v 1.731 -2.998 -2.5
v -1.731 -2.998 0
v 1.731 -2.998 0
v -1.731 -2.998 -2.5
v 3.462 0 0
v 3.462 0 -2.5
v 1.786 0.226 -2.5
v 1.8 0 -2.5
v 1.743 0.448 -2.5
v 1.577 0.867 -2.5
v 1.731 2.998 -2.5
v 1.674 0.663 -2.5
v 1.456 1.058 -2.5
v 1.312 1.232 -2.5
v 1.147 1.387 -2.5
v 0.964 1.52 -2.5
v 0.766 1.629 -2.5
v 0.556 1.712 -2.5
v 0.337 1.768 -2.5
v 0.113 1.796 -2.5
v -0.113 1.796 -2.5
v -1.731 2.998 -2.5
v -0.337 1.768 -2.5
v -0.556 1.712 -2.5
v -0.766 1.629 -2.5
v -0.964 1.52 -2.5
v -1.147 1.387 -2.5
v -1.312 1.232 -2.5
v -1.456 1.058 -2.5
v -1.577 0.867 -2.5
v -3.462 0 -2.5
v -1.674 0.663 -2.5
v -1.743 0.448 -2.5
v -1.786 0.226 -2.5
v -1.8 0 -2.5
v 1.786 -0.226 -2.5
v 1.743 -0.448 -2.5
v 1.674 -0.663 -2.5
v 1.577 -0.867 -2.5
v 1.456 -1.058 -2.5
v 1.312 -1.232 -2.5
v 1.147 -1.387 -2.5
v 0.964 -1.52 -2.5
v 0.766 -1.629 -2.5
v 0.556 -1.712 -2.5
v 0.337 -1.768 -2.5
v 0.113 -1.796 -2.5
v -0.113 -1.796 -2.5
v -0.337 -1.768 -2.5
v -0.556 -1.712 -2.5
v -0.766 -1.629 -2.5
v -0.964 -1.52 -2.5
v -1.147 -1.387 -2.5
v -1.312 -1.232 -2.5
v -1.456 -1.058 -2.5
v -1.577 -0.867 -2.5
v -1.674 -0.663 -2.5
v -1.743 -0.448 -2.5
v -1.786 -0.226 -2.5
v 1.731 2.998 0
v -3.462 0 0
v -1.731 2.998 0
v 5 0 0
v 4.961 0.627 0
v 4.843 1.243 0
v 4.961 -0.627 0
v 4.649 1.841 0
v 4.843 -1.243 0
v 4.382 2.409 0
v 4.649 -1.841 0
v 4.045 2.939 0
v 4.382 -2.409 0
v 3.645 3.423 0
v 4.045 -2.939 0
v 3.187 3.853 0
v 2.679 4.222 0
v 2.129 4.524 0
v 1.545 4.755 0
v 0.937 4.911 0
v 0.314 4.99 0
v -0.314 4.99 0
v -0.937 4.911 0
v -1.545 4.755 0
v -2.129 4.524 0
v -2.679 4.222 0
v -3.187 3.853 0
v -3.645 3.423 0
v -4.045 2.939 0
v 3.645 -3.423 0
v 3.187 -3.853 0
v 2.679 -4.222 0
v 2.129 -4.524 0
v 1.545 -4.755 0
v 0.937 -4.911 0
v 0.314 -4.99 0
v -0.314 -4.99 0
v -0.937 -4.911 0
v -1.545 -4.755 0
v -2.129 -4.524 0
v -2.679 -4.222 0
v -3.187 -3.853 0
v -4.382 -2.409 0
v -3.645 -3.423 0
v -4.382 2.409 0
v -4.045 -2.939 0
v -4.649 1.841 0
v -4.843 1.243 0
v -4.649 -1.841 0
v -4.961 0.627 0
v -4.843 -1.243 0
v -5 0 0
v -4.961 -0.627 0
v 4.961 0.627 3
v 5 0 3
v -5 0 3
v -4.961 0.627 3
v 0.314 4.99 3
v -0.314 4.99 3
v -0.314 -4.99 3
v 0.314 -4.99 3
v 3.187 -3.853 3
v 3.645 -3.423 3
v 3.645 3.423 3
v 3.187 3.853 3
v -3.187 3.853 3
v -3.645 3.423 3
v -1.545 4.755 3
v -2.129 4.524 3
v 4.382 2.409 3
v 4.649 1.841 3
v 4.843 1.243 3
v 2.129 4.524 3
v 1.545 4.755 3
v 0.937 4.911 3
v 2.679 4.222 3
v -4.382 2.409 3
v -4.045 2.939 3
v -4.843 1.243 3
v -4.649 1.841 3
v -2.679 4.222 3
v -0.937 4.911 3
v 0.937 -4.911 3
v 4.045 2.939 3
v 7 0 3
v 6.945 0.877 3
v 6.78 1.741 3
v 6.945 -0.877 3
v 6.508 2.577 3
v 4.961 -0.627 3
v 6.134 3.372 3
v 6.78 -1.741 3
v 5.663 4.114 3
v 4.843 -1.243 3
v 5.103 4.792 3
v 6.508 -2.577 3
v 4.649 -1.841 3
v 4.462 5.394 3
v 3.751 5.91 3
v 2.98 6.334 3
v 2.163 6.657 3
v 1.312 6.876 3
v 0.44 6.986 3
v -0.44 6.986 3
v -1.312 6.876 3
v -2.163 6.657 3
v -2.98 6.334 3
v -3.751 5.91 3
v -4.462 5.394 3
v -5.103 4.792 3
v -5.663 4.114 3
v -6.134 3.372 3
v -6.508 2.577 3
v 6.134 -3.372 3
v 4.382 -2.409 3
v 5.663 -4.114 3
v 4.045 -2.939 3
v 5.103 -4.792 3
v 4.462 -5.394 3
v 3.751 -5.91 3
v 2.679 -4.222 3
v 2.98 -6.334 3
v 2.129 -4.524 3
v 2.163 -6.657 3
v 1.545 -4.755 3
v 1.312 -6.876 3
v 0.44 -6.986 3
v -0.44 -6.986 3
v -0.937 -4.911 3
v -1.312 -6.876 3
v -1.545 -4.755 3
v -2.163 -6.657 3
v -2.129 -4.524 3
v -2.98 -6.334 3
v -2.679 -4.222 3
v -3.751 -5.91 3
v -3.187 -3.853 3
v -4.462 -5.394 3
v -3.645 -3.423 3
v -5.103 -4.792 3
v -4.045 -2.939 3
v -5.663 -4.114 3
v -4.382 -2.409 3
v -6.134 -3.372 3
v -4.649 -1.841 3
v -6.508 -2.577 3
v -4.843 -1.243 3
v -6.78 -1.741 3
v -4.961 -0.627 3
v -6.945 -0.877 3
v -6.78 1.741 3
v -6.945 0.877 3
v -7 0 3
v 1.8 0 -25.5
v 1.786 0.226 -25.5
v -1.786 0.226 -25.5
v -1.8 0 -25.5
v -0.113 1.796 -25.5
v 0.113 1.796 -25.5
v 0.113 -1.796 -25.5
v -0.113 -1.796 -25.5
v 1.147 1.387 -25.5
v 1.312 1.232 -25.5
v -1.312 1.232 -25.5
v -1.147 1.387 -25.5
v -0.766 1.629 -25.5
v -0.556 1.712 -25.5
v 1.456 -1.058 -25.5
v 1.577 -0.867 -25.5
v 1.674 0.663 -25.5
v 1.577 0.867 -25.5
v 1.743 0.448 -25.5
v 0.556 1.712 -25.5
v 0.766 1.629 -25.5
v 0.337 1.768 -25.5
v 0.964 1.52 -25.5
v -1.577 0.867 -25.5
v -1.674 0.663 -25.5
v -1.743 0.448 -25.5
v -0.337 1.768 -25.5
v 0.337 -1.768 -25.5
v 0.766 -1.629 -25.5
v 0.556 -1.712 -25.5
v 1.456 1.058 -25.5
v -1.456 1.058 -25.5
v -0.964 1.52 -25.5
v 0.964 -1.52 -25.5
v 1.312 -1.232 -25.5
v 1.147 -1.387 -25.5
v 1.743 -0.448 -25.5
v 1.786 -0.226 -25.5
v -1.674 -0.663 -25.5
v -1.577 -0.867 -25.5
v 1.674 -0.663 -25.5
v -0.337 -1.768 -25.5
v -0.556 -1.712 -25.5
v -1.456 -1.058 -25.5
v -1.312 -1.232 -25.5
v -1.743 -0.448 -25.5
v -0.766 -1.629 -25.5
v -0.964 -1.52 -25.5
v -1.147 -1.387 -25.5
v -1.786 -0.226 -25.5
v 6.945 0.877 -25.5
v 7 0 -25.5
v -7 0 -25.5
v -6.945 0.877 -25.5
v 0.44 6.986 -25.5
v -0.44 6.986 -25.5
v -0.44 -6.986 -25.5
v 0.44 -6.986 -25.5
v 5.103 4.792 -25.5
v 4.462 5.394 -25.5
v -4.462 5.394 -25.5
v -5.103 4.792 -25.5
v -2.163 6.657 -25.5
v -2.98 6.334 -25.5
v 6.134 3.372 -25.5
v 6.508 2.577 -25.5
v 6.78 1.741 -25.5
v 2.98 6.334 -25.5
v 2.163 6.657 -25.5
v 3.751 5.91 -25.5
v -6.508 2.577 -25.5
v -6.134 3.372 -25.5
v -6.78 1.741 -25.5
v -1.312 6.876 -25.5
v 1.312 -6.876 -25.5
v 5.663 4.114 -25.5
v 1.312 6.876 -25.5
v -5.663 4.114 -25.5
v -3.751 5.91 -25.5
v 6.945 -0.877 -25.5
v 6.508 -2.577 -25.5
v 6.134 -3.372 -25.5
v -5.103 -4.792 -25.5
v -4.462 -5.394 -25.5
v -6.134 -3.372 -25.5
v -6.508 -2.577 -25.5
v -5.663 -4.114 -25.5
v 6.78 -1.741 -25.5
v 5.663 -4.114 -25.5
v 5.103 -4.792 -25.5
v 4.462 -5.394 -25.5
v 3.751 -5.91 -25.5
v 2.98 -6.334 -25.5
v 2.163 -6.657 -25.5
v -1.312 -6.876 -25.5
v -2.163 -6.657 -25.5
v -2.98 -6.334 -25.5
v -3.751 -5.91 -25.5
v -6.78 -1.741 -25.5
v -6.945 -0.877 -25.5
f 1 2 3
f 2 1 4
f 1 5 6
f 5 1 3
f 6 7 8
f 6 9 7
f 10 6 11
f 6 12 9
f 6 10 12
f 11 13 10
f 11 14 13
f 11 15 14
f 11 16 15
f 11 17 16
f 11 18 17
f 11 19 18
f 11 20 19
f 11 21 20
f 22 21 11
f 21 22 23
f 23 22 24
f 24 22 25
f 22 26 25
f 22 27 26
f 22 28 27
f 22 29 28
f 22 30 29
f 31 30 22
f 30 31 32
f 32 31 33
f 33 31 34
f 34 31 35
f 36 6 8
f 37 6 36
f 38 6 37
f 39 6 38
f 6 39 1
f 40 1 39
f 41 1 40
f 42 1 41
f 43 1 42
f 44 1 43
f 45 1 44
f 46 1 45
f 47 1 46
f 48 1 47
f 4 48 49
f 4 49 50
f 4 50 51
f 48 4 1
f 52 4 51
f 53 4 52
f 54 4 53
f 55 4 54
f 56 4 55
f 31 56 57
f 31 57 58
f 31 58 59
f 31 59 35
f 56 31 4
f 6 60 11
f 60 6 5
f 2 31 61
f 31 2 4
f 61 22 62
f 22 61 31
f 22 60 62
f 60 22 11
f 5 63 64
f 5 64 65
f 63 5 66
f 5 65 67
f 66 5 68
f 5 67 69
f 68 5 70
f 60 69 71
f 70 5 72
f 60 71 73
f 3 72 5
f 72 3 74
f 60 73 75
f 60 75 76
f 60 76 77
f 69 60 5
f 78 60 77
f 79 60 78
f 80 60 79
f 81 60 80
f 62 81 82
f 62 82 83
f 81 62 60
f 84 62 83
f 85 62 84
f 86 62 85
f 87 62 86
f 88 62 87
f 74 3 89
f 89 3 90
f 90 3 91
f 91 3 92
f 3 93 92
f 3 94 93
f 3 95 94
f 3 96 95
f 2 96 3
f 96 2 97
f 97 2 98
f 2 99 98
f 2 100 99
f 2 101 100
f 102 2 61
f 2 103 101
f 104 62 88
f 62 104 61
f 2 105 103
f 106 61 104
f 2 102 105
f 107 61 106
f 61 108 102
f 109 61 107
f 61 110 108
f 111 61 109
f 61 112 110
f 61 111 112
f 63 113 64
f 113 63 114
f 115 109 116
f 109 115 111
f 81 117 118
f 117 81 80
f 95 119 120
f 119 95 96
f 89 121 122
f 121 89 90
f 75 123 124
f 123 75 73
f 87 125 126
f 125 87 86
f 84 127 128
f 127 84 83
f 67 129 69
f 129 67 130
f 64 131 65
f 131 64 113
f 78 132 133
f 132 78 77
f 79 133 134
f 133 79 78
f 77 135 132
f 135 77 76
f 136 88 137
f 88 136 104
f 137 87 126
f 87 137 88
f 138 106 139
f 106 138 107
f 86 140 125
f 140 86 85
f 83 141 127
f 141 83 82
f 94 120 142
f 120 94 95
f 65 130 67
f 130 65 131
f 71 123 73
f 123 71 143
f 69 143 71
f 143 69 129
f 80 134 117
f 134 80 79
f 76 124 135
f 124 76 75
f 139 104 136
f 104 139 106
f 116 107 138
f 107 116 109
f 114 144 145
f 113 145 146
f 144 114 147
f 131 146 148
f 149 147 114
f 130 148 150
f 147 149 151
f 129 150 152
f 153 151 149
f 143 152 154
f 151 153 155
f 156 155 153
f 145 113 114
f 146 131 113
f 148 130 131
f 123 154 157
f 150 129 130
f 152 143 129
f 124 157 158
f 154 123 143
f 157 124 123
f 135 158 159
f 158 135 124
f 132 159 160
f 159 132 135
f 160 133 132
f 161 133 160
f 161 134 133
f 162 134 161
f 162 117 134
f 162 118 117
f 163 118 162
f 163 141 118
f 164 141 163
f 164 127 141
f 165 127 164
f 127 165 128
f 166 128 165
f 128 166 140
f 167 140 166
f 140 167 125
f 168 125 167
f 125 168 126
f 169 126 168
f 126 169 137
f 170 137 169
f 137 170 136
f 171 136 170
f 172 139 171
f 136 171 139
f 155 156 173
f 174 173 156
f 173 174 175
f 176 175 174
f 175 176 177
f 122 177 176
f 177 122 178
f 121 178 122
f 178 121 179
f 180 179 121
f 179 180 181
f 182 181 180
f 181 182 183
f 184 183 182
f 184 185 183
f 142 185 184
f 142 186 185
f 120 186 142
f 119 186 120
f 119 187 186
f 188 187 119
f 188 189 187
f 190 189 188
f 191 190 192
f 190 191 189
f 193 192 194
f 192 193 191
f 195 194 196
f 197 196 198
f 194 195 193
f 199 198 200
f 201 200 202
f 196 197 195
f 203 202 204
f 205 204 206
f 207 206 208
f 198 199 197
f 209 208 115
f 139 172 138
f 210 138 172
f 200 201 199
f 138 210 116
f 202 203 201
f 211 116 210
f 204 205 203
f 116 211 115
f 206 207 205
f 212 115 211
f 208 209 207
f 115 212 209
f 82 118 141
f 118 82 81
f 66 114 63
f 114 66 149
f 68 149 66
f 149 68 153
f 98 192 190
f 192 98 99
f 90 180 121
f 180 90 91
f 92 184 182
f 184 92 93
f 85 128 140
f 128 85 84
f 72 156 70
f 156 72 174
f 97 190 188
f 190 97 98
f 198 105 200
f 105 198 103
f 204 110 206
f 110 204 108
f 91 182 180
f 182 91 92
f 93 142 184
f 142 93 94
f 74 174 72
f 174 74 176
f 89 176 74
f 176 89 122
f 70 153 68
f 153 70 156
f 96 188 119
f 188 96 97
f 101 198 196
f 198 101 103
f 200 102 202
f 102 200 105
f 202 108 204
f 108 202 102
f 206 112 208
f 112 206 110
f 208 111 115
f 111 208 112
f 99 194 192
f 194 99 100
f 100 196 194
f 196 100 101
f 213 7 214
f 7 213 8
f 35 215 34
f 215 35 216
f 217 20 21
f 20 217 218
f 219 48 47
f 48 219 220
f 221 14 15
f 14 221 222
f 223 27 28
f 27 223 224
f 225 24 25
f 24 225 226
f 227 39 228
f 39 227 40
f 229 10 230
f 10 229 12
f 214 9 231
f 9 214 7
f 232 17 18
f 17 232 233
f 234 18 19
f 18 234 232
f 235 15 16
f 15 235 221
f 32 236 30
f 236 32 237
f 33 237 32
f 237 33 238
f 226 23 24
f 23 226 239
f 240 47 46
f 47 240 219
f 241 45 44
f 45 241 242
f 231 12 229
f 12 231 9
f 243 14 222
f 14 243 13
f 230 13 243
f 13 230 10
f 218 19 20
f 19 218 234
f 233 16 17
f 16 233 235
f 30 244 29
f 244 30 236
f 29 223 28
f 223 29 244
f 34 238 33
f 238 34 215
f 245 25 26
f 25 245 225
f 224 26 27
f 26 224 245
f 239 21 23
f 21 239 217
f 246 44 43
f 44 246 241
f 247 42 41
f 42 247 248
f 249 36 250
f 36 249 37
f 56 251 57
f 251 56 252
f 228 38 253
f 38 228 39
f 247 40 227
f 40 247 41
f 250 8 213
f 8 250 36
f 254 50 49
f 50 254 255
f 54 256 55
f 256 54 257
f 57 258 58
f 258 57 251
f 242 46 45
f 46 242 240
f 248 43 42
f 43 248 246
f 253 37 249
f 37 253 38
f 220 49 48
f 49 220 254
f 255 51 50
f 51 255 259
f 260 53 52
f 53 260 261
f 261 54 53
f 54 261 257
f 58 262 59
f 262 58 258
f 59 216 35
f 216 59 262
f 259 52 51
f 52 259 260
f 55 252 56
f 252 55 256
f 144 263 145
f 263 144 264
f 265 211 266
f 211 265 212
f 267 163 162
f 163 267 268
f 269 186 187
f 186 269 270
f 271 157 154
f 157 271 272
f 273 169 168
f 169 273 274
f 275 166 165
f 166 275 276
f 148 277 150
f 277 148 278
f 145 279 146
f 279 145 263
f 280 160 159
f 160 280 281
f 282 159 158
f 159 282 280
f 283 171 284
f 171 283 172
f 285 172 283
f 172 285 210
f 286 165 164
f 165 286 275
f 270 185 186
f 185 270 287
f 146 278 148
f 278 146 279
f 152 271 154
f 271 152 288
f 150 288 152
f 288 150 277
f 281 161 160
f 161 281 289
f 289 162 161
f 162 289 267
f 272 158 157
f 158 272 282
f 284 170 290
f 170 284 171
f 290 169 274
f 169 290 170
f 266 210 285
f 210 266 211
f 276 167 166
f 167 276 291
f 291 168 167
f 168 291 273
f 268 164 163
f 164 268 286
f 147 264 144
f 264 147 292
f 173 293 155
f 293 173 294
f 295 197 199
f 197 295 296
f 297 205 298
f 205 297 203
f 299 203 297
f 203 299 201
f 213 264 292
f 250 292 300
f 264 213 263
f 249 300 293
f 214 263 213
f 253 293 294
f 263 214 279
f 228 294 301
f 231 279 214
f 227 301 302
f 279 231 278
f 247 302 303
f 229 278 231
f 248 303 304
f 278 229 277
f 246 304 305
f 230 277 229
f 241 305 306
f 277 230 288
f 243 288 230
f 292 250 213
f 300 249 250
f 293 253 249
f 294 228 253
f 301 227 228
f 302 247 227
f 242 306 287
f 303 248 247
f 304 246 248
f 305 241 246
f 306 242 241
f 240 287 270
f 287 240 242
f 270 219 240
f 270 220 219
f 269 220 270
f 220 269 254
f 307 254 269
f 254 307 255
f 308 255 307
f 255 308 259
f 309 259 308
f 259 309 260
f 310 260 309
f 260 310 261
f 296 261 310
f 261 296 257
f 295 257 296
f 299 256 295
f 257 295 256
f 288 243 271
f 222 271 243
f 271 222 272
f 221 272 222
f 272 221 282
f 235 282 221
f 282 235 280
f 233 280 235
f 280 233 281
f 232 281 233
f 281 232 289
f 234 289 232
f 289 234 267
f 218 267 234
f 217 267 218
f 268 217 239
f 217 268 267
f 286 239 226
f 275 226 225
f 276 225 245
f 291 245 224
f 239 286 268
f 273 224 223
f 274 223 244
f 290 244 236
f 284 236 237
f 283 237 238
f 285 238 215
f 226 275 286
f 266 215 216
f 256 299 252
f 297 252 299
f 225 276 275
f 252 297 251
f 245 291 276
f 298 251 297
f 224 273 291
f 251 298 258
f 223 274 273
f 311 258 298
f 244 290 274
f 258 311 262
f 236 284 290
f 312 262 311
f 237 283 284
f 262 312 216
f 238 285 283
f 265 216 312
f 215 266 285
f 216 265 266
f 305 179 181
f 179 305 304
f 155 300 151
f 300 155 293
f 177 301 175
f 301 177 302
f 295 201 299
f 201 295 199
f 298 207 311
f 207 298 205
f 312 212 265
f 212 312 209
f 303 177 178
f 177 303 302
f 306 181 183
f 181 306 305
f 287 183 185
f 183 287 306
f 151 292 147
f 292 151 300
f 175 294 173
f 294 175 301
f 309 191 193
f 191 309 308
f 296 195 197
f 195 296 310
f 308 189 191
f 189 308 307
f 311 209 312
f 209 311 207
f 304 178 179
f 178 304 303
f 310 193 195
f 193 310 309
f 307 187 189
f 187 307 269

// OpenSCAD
$fn = 50;


difference() {
	union() {
		translate(v = [0, 0, -25.5000000000]) {
			cylinder(h = 28.5000000000, r = 7.0000000000);
		}
	}
	union() {
		translate(v = [0, 0, 0]) {
			rotate(a = [0, 0, 0]) {
				difference() {
					union() {
						translate(v = [0, 0, -2.5000000000]) {
							linear_extrude(height = 2.5000000000) {
								polygon(points = [[3.4620000000, 0.0000000000], [1.7310000000, 2.9981799479], [-1.7310000000, 2.9981799479], [-3.4620000000, 0.0000000000], [-1.7310000000, -2.9981799479], [1.7310000000, -2.9981799479]]);
							}
						}
					}
					union();
				}
			}
		}
		#cylinder(h = 3, r = 5.0000000000);
		#translate(v = [0, 0, -100.0000000000]) {
			cylinder(h = 200, r = 1.8000000000);
		}
	}
}
